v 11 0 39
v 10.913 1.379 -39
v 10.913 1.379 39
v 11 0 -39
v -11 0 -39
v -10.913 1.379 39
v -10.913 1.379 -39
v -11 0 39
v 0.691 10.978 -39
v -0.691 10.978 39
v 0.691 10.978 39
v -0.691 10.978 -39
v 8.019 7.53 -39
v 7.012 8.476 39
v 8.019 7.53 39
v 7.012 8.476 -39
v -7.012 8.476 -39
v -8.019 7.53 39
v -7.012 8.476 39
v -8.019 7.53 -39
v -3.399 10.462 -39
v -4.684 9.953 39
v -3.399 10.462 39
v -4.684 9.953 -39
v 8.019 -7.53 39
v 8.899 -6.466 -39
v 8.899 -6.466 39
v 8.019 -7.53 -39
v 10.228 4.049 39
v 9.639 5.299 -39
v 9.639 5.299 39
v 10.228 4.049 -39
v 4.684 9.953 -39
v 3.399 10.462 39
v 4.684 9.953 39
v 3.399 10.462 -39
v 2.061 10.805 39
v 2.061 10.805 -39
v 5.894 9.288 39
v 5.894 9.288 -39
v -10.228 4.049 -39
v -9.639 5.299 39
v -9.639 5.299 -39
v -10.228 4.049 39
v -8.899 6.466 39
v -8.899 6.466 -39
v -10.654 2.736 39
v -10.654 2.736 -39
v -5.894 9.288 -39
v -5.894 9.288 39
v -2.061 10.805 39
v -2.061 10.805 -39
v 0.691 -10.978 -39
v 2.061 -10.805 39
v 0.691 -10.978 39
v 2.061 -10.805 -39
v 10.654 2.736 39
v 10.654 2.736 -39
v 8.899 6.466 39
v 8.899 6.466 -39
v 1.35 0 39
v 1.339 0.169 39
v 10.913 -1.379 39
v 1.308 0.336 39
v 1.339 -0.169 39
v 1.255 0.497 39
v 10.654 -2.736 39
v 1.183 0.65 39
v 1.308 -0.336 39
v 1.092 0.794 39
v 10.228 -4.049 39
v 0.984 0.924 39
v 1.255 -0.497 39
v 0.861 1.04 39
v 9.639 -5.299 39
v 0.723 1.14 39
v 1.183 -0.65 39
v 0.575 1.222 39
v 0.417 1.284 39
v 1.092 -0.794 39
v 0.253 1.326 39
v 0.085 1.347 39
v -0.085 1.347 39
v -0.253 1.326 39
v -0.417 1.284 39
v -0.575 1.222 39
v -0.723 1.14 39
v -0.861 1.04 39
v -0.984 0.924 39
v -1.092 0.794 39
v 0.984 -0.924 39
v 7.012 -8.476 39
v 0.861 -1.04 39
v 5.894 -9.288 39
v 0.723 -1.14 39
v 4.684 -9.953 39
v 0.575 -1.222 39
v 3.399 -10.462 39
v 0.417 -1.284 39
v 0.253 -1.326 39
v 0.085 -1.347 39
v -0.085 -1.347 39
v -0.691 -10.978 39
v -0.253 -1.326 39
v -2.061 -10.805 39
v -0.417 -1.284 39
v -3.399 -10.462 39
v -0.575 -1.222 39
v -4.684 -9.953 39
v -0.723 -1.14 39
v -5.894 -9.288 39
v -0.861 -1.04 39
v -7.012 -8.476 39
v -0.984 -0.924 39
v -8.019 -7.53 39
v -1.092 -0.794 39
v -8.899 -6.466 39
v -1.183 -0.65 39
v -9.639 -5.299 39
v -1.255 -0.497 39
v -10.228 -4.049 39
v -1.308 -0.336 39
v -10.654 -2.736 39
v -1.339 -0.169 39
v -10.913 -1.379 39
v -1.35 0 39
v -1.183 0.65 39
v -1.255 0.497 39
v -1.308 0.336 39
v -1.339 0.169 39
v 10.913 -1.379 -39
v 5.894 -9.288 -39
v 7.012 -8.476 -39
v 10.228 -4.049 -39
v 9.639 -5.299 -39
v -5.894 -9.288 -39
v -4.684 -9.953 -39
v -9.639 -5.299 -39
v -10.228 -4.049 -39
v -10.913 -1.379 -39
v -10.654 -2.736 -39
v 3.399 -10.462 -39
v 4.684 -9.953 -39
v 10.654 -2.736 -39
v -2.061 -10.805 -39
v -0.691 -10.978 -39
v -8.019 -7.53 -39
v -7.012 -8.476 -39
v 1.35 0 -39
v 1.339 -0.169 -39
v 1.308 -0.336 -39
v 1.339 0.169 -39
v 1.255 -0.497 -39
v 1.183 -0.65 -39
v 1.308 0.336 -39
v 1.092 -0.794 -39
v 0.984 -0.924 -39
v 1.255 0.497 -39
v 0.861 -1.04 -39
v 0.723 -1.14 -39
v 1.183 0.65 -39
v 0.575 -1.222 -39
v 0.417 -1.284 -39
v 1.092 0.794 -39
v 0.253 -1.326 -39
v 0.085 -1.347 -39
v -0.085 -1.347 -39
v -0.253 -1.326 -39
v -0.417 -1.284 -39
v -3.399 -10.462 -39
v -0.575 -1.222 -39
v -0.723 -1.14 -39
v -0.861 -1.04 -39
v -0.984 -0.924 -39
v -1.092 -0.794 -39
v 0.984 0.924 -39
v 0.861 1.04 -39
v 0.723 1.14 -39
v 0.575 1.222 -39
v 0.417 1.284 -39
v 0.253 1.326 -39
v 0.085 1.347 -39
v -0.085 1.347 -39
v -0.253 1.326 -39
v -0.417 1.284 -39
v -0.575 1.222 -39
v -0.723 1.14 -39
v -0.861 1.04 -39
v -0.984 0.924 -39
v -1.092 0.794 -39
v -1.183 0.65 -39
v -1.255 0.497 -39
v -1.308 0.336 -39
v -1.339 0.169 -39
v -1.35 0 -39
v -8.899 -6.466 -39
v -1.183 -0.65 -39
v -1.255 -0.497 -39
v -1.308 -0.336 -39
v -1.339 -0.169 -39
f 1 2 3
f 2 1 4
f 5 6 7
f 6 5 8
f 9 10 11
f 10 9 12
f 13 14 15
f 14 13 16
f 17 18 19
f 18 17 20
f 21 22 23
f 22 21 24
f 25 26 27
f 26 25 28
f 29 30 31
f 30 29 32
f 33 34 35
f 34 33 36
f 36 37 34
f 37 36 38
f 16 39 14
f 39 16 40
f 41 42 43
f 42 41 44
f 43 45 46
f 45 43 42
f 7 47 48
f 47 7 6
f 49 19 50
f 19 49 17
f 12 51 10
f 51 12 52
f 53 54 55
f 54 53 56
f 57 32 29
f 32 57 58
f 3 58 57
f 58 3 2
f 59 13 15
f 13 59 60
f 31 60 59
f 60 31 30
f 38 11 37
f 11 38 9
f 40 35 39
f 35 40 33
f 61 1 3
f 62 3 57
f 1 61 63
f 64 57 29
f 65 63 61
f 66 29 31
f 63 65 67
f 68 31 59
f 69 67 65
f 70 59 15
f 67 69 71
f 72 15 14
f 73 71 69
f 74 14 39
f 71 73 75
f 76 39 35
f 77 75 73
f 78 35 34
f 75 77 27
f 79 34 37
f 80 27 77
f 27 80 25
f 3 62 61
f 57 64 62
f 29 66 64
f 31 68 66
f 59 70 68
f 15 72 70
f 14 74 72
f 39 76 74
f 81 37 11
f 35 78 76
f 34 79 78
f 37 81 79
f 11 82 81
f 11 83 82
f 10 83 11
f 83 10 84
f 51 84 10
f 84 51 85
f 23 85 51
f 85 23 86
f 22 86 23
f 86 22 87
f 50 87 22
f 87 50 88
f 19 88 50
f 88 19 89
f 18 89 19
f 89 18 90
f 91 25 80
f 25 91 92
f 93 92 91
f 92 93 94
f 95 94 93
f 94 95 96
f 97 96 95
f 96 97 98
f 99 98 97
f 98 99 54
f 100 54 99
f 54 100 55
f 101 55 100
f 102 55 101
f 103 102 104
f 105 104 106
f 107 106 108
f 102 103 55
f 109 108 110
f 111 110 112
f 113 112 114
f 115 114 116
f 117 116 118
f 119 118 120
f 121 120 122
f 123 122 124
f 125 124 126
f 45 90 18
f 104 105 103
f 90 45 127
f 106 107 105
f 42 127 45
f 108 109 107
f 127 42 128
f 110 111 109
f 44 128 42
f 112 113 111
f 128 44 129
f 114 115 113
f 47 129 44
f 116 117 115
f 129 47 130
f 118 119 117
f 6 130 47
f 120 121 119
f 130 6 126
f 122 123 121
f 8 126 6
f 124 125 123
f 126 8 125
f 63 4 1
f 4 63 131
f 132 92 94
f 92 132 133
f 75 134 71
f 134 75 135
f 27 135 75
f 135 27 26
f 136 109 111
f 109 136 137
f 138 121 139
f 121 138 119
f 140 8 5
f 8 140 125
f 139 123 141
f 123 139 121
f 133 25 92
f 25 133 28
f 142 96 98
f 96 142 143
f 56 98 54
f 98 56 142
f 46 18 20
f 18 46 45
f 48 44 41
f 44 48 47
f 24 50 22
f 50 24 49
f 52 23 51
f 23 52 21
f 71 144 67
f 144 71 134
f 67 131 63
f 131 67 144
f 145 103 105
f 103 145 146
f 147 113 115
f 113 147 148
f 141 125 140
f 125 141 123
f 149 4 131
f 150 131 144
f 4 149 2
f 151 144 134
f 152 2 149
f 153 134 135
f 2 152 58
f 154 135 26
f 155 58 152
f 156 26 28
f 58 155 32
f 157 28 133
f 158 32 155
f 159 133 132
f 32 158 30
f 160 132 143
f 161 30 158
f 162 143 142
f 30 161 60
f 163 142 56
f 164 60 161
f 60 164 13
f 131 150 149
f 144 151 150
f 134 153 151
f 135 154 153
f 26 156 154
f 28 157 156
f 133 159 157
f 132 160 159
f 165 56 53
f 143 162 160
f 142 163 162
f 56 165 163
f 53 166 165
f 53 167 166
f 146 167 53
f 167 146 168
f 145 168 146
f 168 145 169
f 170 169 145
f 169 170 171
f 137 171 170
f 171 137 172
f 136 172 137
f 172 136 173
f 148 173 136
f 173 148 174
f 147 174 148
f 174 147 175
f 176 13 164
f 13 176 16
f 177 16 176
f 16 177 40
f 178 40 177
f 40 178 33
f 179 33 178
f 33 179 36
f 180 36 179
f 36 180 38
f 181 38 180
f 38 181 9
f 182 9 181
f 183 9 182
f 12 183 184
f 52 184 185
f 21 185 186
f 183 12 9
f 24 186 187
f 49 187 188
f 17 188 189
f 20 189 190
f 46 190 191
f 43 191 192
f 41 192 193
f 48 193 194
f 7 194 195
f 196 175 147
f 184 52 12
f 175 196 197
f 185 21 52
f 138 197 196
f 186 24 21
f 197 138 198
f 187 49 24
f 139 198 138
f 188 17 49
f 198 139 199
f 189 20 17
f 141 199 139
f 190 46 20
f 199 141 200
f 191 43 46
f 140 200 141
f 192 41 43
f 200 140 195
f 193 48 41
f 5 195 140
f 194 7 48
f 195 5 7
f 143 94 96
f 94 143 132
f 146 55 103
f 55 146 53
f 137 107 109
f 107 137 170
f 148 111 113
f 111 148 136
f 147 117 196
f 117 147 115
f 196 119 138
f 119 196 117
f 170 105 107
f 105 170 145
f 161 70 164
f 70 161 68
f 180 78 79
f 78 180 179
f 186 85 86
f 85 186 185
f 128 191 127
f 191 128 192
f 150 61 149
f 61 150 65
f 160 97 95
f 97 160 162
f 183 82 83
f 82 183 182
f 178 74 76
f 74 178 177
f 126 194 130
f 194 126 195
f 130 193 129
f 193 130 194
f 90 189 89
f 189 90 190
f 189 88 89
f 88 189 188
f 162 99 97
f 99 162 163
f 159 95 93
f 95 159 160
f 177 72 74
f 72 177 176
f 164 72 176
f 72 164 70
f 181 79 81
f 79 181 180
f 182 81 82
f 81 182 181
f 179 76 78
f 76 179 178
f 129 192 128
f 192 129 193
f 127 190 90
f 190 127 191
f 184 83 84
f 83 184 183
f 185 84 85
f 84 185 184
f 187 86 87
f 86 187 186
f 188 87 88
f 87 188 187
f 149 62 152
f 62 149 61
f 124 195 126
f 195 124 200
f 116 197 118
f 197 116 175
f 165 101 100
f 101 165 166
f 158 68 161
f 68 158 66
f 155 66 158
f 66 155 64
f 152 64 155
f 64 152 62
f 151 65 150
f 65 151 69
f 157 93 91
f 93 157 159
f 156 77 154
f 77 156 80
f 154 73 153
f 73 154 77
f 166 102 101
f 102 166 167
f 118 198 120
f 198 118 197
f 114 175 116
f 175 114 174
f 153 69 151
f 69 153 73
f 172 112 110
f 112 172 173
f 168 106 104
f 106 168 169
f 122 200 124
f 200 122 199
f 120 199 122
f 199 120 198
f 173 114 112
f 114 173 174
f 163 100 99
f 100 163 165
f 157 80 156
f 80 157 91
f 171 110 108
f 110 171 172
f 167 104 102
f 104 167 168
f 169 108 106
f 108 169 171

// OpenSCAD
$fn = 50;


difference() {
	union() {
		translate(v = [0, 0, -39.0000000000]) {
			cylinder(h = 78, r = 11.0000000000);
		}
	}
	union() {
		translate(v = [0, 0, -100.0000000000]) {
			cylinder(h = 200, r = 1.3500000000);
		}
	}
}
